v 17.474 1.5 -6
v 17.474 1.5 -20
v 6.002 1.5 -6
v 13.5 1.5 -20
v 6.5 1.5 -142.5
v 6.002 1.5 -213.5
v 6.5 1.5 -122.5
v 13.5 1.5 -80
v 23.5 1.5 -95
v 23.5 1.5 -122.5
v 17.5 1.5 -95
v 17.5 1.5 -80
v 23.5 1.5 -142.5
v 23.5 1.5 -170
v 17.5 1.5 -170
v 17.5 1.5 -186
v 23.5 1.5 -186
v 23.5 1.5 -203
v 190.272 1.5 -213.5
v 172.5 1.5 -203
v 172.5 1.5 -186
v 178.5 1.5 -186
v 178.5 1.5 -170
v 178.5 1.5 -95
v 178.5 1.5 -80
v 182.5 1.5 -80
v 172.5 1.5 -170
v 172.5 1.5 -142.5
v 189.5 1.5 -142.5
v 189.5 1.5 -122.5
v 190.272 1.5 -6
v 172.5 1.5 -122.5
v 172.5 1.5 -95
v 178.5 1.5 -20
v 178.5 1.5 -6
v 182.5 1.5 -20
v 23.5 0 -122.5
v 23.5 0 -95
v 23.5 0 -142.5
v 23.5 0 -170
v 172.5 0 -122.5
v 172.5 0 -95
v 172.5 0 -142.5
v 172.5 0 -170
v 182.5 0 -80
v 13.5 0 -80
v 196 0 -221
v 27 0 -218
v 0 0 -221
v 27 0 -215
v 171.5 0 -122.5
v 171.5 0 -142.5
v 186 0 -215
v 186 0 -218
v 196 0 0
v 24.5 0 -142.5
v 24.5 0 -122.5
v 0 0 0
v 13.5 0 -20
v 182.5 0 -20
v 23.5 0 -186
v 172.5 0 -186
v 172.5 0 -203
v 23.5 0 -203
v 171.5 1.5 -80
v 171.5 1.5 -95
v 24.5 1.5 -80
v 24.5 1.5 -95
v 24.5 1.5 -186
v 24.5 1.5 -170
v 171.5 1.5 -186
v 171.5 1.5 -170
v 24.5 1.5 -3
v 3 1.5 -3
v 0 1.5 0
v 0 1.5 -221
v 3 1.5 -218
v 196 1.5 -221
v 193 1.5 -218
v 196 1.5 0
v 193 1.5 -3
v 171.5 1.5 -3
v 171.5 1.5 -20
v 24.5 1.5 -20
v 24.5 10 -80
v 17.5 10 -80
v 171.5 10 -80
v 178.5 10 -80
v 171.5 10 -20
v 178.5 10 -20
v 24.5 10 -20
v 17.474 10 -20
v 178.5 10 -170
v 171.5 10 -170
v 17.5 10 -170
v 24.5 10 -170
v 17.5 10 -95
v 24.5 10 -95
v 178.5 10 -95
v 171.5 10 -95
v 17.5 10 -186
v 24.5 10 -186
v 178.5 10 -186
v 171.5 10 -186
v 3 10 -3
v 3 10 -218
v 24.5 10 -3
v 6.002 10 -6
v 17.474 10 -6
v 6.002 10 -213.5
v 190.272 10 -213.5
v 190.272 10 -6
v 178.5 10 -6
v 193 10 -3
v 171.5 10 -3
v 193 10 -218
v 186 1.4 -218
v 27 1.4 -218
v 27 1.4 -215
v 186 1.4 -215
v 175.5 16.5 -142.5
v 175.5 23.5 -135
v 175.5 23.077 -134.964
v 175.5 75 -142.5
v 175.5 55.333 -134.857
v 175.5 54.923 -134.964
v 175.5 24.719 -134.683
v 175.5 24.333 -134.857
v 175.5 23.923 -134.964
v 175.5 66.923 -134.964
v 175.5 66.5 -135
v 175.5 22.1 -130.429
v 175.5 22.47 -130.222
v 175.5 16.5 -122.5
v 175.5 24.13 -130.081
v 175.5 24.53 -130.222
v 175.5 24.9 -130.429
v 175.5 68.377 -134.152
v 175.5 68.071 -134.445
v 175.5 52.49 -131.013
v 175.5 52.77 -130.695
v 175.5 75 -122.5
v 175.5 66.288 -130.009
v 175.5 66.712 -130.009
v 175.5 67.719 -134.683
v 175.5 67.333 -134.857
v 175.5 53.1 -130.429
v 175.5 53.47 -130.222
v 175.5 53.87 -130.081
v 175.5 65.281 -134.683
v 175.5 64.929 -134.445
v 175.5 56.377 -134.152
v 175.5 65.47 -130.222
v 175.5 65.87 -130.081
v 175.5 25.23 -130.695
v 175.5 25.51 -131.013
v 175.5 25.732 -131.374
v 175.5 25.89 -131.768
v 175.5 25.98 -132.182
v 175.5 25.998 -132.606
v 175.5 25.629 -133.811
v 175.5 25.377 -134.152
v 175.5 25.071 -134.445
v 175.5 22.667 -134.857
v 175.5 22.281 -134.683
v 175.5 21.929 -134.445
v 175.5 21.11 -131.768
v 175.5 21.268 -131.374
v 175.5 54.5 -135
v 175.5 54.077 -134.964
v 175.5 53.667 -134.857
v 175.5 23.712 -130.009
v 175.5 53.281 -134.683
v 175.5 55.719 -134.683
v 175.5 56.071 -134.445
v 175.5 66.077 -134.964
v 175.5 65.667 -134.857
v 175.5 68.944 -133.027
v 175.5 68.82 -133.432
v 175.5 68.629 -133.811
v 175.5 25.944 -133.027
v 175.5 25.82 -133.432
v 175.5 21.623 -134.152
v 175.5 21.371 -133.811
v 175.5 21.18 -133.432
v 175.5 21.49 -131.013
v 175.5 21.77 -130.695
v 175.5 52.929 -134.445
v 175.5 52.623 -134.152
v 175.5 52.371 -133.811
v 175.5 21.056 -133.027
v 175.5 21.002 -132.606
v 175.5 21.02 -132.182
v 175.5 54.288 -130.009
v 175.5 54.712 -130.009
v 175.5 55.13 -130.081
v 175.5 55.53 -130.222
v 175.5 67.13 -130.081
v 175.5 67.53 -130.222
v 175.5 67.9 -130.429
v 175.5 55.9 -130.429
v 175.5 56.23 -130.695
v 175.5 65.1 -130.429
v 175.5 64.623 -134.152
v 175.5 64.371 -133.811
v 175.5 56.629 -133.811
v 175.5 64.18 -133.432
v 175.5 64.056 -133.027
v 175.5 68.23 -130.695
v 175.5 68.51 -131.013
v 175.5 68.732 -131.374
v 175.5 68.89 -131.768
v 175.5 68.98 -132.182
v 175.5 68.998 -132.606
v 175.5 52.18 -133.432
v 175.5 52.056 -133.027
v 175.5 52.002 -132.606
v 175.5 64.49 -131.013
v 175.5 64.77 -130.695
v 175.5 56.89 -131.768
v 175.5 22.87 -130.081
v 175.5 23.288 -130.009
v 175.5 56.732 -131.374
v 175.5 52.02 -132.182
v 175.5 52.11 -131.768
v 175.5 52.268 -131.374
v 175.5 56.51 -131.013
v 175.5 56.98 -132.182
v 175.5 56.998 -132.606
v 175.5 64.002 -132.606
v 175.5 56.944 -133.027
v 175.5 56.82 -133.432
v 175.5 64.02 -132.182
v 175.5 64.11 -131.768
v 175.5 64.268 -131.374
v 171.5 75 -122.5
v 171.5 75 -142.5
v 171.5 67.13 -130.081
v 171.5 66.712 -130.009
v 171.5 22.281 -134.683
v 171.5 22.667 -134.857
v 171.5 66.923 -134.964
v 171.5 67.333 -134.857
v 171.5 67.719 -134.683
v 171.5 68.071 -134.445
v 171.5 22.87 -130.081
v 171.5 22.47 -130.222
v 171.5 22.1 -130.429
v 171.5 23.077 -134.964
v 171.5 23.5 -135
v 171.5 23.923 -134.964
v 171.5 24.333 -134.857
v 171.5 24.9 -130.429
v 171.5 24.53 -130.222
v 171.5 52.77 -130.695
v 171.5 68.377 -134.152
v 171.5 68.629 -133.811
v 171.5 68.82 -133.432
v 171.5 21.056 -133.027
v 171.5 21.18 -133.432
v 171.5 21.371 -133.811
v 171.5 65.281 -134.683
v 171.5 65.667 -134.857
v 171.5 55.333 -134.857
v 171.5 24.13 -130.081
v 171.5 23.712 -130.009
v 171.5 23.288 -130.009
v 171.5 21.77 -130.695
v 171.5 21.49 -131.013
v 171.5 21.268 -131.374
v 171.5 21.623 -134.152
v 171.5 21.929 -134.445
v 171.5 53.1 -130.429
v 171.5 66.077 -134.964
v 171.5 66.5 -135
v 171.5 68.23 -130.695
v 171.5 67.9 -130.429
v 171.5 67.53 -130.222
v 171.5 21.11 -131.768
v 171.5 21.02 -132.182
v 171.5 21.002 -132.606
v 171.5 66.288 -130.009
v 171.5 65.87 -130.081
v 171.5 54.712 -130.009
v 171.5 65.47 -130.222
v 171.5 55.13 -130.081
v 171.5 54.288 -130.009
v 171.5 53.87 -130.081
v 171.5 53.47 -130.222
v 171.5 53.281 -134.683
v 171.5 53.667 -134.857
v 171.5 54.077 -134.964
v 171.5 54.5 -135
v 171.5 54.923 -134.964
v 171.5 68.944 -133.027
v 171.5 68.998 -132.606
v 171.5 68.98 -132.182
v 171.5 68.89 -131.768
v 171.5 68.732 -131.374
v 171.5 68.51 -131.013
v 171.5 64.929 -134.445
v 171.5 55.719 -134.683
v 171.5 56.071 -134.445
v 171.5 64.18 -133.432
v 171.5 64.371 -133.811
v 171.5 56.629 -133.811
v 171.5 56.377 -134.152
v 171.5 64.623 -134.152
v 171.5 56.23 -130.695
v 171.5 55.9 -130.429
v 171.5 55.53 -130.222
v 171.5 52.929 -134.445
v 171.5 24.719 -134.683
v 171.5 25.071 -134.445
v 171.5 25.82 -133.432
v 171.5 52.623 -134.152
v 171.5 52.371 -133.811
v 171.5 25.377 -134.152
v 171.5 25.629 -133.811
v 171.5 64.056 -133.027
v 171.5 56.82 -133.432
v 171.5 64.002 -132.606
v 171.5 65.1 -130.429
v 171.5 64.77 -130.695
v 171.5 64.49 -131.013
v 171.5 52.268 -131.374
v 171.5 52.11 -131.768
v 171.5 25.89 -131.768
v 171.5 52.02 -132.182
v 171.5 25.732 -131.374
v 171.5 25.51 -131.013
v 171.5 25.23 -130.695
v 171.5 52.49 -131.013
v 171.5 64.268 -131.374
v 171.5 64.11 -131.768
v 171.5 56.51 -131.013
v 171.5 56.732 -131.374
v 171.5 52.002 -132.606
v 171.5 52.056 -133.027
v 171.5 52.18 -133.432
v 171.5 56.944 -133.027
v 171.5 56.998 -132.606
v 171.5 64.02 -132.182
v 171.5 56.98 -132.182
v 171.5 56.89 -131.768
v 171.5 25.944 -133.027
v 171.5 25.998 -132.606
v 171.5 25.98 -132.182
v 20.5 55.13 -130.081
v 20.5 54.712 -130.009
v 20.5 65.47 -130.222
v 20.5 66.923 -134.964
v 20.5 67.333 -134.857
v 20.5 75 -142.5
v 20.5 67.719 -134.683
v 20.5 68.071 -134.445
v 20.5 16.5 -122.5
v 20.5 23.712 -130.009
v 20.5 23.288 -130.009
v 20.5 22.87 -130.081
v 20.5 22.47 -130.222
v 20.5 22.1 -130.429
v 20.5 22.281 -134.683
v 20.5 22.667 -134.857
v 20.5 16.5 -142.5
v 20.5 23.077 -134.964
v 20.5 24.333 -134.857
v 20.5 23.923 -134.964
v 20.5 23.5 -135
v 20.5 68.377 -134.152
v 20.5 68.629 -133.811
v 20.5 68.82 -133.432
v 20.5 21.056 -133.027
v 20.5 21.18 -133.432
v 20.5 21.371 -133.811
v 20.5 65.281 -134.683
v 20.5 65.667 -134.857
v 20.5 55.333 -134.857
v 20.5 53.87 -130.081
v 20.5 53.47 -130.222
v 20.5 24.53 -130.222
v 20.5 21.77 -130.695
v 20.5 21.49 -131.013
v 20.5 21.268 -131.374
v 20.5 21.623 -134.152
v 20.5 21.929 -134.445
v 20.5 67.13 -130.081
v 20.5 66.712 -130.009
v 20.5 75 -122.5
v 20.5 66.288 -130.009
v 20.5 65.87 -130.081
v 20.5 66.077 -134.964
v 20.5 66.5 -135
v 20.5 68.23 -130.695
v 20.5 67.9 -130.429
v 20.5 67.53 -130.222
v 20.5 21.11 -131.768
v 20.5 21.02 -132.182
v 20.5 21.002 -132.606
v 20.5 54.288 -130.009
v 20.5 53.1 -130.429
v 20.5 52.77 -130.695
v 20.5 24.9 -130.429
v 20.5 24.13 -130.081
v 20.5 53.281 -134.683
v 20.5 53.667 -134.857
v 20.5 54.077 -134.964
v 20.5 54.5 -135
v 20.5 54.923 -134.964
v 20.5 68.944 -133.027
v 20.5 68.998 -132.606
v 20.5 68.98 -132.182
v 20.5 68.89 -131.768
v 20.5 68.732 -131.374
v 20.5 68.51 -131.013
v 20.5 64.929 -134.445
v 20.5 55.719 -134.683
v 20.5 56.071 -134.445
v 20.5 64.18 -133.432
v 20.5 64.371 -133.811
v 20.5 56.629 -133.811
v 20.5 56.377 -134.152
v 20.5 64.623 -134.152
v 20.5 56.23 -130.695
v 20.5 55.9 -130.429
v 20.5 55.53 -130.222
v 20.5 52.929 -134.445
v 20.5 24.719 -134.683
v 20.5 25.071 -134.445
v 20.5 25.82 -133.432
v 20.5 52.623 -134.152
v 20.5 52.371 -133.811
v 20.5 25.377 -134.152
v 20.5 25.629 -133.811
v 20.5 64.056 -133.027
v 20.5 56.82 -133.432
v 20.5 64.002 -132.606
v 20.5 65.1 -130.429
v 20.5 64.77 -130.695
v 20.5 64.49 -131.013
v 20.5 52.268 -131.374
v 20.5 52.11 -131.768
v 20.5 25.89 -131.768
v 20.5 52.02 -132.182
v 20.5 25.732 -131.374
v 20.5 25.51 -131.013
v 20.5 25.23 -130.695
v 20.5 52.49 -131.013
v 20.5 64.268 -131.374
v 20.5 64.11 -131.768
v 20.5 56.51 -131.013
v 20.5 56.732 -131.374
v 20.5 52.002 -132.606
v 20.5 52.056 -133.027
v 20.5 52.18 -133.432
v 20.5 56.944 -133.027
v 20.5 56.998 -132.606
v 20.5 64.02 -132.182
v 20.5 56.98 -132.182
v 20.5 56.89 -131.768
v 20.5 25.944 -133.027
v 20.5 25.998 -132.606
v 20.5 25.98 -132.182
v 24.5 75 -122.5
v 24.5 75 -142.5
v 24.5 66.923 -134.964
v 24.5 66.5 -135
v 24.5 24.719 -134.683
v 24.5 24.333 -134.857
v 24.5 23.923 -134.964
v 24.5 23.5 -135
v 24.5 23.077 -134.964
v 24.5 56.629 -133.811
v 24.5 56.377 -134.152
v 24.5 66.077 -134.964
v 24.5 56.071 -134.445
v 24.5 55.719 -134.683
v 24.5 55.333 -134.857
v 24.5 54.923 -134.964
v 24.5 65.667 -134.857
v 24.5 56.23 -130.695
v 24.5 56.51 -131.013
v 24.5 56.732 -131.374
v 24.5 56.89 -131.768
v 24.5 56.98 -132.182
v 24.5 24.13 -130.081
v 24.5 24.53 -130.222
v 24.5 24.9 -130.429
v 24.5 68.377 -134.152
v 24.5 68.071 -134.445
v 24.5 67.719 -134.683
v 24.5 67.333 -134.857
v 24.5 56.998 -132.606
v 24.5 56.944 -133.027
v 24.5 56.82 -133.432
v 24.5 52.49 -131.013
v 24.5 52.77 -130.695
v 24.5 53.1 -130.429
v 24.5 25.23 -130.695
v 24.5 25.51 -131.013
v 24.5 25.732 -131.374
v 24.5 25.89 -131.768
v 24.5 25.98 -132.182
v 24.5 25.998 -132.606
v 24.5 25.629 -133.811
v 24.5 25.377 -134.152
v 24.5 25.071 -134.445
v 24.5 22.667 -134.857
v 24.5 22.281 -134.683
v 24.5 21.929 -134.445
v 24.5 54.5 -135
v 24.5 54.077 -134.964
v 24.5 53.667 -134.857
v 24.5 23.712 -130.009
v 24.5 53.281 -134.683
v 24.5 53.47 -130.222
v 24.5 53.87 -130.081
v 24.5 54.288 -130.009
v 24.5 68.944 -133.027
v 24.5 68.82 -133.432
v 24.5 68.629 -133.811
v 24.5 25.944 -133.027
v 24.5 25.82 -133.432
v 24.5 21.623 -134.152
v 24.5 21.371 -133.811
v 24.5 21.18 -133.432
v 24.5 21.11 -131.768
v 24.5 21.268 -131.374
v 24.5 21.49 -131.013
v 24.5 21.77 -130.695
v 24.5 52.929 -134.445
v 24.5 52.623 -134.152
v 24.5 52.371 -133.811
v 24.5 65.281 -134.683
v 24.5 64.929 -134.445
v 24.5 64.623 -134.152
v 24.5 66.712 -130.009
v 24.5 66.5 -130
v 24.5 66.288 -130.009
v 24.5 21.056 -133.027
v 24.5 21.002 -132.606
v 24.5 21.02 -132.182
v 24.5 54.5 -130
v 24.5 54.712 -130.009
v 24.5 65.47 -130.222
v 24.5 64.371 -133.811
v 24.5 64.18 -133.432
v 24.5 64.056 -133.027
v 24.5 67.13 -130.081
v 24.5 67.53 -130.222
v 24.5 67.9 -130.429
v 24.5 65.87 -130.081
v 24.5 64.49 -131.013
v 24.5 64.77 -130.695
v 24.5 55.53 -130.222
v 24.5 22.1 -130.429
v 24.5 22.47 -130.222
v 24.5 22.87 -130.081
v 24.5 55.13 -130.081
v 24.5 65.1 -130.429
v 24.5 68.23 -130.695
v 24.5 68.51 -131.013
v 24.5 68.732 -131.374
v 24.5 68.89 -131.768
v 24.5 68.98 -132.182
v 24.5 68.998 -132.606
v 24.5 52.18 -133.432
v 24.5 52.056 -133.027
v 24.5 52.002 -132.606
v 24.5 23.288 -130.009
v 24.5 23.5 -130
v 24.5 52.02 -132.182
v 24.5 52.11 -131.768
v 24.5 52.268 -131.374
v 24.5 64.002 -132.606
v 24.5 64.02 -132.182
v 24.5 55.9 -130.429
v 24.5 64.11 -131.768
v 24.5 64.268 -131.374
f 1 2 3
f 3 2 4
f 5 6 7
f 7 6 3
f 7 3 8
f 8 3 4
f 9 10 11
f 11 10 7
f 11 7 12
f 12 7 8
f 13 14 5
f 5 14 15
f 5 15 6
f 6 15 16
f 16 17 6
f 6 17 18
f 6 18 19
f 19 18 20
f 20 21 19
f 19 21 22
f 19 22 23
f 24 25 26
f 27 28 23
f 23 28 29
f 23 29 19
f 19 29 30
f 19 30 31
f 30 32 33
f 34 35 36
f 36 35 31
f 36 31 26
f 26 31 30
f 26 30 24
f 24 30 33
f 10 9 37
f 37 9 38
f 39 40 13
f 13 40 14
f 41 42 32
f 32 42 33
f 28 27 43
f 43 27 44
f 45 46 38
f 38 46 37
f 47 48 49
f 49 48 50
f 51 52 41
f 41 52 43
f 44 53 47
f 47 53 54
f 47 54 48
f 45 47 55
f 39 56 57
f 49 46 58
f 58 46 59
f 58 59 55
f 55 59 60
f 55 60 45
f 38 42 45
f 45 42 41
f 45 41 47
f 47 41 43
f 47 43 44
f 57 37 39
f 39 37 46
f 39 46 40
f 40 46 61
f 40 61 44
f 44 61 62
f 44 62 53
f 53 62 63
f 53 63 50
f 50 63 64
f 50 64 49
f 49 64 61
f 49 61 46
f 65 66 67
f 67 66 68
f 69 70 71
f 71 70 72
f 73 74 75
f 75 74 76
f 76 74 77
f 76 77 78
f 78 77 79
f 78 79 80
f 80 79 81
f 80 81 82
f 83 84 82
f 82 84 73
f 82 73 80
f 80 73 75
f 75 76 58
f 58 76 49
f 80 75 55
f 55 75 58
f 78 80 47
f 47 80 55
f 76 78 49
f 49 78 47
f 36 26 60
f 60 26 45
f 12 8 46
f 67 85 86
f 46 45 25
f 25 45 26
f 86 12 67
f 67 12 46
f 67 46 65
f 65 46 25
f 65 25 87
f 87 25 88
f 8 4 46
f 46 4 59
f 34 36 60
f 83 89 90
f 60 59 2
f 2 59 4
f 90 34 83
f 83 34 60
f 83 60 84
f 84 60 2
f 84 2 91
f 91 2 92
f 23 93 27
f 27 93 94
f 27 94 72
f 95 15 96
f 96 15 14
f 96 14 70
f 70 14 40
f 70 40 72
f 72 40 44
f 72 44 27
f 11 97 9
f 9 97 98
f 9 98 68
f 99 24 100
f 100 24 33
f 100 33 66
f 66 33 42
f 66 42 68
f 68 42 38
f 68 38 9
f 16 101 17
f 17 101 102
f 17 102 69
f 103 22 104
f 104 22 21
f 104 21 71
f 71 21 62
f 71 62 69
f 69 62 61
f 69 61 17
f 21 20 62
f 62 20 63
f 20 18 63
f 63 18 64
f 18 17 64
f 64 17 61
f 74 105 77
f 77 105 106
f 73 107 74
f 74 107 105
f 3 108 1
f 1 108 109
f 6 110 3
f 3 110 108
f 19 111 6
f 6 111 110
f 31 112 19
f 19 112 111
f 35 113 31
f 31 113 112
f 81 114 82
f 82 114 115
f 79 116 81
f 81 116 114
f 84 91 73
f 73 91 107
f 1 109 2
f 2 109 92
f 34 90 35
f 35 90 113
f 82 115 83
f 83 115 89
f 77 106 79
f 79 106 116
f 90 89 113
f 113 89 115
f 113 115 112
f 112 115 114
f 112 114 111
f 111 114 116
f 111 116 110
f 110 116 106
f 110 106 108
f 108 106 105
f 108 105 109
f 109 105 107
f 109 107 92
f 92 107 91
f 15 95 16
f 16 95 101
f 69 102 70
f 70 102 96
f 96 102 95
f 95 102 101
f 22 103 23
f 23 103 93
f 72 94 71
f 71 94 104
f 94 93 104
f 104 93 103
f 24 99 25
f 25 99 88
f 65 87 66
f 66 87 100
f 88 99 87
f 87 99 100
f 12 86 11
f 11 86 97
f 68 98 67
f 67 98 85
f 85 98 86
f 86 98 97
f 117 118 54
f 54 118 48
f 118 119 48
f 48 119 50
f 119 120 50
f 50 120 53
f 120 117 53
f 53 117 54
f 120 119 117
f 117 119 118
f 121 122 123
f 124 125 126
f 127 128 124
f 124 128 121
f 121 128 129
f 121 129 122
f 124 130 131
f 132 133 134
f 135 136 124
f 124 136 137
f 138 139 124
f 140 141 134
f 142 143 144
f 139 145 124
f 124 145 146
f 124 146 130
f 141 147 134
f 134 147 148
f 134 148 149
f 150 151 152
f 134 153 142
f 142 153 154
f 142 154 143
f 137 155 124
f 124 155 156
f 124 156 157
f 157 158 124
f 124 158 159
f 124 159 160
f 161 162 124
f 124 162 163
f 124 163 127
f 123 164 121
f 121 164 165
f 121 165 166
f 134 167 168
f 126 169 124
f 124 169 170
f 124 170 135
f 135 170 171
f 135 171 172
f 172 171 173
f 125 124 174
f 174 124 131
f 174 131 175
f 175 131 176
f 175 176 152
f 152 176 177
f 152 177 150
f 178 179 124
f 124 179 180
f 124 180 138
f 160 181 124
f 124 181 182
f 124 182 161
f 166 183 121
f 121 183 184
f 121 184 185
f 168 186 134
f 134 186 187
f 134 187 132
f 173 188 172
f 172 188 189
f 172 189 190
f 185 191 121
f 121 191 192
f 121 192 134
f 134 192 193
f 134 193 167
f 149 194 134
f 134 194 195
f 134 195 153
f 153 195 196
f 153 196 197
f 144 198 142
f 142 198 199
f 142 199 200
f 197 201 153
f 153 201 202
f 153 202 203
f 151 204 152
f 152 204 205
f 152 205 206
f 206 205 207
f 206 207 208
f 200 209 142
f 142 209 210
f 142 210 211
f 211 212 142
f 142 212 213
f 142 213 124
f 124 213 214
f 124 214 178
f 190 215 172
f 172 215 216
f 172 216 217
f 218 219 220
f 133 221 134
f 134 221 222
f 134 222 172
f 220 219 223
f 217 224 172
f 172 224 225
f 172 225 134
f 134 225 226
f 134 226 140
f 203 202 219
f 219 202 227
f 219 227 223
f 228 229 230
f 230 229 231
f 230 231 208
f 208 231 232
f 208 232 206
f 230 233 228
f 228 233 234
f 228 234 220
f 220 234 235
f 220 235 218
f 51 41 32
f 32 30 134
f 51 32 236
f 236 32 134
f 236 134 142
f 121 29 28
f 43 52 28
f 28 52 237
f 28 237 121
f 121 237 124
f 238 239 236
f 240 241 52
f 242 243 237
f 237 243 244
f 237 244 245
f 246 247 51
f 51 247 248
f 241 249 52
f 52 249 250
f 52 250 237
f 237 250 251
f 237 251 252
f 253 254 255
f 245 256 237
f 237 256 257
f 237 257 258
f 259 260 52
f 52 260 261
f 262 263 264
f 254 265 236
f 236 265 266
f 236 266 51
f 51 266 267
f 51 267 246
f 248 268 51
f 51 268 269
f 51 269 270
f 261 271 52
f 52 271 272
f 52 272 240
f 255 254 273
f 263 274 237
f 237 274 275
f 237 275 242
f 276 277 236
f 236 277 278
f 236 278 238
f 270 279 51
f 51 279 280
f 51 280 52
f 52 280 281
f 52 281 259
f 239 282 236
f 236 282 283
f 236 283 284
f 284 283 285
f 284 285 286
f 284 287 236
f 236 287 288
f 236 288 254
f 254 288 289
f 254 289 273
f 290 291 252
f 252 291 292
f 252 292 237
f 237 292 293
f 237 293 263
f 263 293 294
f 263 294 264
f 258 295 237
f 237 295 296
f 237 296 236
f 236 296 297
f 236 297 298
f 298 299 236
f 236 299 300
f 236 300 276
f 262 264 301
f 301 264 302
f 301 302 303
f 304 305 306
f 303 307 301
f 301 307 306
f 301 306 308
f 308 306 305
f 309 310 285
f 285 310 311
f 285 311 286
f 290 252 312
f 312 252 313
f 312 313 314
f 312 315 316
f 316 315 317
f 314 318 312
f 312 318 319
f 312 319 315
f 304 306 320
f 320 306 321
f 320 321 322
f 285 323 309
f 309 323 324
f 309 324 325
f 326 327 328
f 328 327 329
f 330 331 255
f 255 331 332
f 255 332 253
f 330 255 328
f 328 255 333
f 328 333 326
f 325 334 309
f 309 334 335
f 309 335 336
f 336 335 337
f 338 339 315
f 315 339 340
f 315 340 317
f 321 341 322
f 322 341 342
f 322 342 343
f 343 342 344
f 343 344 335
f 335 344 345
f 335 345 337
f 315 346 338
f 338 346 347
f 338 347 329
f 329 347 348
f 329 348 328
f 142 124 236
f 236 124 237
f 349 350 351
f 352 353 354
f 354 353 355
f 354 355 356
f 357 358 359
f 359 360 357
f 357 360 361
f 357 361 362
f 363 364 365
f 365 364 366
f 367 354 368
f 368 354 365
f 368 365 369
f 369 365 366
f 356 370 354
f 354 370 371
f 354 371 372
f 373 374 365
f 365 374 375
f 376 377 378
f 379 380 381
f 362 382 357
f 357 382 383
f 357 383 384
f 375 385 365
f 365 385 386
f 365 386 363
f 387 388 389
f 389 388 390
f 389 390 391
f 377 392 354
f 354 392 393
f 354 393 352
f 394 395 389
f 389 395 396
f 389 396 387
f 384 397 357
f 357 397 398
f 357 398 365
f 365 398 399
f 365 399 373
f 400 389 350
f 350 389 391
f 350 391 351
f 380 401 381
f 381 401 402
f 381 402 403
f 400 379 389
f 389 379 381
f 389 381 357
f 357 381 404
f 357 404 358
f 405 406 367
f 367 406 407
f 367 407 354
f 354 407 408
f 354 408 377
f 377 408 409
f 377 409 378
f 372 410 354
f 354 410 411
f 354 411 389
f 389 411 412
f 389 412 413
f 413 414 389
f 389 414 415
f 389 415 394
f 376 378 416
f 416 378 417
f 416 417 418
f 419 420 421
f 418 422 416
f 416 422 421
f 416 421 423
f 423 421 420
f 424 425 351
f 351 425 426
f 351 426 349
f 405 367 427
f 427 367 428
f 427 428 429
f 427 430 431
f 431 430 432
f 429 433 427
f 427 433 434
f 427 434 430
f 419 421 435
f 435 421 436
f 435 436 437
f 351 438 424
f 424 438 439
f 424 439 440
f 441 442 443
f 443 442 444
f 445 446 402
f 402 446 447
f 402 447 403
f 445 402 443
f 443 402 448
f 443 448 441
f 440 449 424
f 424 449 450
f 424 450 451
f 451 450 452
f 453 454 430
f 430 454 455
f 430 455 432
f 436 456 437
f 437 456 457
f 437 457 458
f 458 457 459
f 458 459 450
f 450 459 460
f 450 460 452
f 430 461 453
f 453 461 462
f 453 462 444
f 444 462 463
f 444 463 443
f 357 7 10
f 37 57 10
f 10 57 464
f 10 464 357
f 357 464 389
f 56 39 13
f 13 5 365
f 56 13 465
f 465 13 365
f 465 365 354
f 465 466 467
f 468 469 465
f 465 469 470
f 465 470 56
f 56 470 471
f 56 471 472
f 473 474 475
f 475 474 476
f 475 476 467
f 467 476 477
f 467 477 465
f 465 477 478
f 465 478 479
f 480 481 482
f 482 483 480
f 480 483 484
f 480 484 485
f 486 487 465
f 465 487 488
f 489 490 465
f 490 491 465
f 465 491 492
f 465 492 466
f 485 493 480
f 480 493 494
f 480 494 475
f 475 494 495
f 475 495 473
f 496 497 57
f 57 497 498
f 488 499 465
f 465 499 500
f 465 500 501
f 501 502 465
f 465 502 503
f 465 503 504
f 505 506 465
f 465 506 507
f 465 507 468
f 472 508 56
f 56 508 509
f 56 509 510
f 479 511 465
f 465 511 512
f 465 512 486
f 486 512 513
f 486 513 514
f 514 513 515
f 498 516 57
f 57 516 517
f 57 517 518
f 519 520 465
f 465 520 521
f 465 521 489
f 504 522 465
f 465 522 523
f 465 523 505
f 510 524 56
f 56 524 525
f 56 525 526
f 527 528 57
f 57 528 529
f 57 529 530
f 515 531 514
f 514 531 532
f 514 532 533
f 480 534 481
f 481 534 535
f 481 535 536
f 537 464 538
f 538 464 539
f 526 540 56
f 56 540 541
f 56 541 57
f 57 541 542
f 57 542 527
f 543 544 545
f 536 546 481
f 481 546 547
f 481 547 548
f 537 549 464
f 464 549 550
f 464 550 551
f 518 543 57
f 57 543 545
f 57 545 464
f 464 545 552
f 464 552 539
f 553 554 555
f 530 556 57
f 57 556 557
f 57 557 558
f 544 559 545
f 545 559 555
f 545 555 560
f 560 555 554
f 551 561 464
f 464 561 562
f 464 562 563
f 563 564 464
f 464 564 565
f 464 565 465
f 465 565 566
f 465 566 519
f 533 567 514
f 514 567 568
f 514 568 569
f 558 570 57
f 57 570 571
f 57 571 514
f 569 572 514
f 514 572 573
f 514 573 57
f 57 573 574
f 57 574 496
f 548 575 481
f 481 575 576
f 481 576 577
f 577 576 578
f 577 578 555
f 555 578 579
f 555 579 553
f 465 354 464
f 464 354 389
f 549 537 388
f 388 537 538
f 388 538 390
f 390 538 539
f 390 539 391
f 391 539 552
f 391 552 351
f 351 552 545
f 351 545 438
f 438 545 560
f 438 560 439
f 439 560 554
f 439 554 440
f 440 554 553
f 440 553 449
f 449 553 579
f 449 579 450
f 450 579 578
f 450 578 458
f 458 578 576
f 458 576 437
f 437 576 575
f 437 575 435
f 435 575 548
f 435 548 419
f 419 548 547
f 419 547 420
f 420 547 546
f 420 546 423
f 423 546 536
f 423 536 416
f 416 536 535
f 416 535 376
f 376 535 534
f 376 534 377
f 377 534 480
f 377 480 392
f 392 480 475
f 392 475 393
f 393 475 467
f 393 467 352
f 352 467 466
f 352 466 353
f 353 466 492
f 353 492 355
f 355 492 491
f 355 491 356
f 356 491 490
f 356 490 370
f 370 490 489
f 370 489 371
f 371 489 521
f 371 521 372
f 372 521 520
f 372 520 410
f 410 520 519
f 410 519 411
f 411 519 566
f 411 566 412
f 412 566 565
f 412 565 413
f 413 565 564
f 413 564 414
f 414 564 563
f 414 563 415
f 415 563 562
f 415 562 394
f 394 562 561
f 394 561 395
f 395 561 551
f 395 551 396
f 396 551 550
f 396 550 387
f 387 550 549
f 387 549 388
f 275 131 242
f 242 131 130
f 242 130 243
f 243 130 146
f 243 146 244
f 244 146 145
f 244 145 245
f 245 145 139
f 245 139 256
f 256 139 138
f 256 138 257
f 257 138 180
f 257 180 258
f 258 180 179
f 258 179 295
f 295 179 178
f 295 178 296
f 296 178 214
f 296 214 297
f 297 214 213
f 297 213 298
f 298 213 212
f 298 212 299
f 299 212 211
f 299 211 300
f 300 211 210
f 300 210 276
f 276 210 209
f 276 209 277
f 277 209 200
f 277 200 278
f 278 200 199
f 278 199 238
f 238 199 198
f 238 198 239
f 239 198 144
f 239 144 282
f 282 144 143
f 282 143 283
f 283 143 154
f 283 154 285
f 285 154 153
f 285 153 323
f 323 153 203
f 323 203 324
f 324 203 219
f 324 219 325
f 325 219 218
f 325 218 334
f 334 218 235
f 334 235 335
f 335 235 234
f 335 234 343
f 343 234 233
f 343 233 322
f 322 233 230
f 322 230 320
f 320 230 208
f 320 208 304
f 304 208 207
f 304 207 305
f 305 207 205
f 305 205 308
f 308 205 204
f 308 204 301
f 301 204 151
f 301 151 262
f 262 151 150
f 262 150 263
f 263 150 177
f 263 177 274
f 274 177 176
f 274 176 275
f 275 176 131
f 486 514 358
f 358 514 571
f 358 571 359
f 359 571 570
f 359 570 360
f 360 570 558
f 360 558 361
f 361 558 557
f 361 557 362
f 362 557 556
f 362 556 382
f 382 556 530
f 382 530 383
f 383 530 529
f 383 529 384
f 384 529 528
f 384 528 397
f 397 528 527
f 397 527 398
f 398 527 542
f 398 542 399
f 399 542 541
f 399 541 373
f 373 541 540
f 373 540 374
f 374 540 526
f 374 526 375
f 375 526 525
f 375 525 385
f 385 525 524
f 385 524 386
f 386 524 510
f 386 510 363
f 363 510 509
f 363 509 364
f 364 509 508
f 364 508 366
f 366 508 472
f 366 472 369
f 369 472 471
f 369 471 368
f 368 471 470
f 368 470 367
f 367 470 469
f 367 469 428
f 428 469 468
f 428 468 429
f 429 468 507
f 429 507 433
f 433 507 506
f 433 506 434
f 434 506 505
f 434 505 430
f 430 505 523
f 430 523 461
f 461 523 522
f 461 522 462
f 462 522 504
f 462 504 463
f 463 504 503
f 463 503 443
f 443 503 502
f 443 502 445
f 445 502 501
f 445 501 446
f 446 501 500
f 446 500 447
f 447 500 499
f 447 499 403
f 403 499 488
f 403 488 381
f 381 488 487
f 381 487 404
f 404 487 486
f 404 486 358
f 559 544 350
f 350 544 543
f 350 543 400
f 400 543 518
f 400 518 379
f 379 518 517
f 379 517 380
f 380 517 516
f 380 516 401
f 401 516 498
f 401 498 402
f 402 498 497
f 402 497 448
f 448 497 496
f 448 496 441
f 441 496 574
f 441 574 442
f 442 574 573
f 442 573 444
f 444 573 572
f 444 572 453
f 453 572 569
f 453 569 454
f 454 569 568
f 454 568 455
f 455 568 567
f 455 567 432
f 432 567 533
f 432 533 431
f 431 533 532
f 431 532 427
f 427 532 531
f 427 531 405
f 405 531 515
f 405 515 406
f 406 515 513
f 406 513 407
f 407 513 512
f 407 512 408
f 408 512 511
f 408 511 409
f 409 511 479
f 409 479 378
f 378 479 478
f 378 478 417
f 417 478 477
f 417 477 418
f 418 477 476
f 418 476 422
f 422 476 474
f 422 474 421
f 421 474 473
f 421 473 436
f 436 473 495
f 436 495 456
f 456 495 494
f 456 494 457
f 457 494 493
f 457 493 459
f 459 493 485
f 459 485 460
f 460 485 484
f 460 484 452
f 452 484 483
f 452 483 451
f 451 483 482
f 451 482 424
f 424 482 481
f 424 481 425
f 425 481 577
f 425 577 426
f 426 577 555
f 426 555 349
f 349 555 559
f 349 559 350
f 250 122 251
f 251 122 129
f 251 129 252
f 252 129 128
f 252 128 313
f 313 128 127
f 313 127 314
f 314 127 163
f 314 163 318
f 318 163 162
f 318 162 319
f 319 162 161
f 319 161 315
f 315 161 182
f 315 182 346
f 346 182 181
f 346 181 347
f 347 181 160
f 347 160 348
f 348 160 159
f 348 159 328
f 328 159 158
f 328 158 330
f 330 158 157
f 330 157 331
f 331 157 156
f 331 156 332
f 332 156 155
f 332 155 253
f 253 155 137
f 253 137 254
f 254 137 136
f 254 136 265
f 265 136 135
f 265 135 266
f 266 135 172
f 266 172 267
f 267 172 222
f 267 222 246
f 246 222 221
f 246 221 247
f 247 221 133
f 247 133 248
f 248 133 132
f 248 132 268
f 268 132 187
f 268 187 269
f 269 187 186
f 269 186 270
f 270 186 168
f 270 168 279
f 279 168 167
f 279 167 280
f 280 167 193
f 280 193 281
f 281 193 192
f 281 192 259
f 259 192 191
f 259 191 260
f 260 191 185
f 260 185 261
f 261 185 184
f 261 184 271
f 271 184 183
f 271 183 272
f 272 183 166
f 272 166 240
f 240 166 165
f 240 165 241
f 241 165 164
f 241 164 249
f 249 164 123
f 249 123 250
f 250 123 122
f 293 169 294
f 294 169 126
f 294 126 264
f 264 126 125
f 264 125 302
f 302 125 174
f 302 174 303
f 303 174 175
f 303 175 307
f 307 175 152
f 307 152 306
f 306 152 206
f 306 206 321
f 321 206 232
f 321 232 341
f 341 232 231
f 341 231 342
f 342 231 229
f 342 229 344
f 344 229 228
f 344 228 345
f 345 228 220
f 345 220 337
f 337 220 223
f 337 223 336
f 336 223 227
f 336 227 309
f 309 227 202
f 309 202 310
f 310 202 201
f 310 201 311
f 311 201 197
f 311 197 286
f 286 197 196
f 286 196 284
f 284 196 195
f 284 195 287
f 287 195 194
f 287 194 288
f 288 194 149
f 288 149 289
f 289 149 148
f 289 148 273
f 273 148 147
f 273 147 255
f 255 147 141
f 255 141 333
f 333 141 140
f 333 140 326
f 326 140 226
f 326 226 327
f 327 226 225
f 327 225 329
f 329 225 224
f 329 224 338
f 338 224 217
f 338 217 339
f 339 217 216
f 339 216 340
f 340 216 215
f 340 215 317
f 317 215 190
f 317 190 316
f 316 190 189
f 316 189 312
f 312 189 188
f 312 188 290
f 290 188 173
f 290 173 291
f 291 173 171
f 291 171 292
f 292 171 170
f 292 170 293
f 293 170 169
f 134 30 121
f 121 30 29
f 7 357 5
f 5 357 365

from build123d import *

# Parameters (mm, degrees)
SKETCH_1_W          = 196
SKETCH_1_H          = 221
SKETCH_1_W_2        = 169
SKETCH_1_H_2        = 60
SKETCH_1_W_3        = 149
SKETCH_1_H_3        = 75
SKETCH_1_H_4        = 17
SKETCH_1_W_4        = 159
SKETCH_1_H_5        = 3.5
EXTRUDE_1_DEPTH     = 1.5
SKETCH_5_W          = 7
SKETCH_5_H          = 16
SKETCH_5_H_2        = 15
EXTRUDE_9_DEPTH     = 10
CUT_EXTRUDE_2_DEPTH = 1.4
SKETCH_7_W          = 4
SKETCH_7_H          = 20
EXTRUDE_10_DEPTH    = 75
SKETCH_8_R          = 2.5
CUT_EXTRUDE_3_DEPTH = 185
EXTRUDE_11_DEPTH    = 20


with BuildPart() as part:
    # 草图1 → 凸台-拉伸1 (new body)
    with BuildSketch(Plane(origin=(0, 0, 0), x_dir=(1, 0, 0), z_dir=(0, 1, 0))):
        with Locations((98, 110.5)):
            Rectangle(SKETCH_1_W, SKETCH_1_H)
        with Locations((98, 50)):
            Rectangle(SKETCH_1_W_2, SKETCH_1_H_2, mode=Mode.SUBTRACT)
        with Locations((98, 132.5)):
            Rectangle(SKETCH_1_W_3, SKETCH_1_H_3, mode=Mode.SUBTRACT)
        with Locations((98, 194.5)):
            Rectangle(SKETCH_1_W_3, SKETCH_1_H_4, mode=Mode.SUBTRACT)
        with Locations((106.5, 216.25)):
            Rectangle(SKETCH_1_W_4, SKETCH_1_H_5, mode=Mode.SUBTRACT)
    extrude(amount=EXTRUDE_1_DEPTH)

    # 草图5 → 凸台-拉伸9 (add)
    with BuildSketch(Plane(origin=(0, 0, 0), x_dir=(1, 0, 0), z_dir=(0, 1, 0))):
        Polygon((3, 218), (193, 218), (193, 3), (171.5, 3), (171.5, 20), (178.5, 20), (178.5, 6), (190.27234206, 6), (190.27234206, 213.5), (6.00234206, 213.5), (6.00234206, 6), (17.473925125, 6), (17.473925125, 20), (24.5, 20), (24.5, 3), (3, 3), align=None)
        with Locations((21, 178)):
            Rectangle(SKETCH_5_W, SKETCH_5_H)
        with Locations((175, 178)):
            Rectangle(SKETCH_5_W, SKETCH_5_H)
        with Locations((175, 87.5)):
            Rectangle(SKETCH_5_W, SKETCH_5_H_2)
        with Locations((21, 87.5)):
            Rectangle(SKETCH_5_W, SKETCH_5_H_2)
    extrude(amount=EXTRUDE_9_DEPTH)

    # 草图6 → 切除-拉伸2 (cut)
    with BuildSketch(Plane(origin=(0, 0, 0), x_dir=(1, 0, 0), z_dir=(0, 1, 0))):
        Polygon((27, 217.586317154), (27, 218), (186, 218), (186, 215), (27, 215), align=None)
    extrude(amount=CUT_EXTRUDE_2_DEPTH, mode=Mode.SUBTRACT)

    # 草图7 → 凸台-拉伸10 (add)
    with BuildSketch(Plane(origin=(0, 0, 0), x_dir=(1, 0, 0), z_dir=(0, 1, 0))):
        Polygon((175.5, 132.5), (175.5, 142.5), (171.5, 142.5), (171.5, 122.5), (175.5, 122.5), align=None)
        with Locations((22.5, 132.5)):
            Rectangle(SKETCH_7_W, SKETCH_7_H)
    extrude(amount=EXTRUDE_10_DEPTH)

    # 草图8 → 切除-拉伸3 (cut)
    with BuildSketch(Plane(origin=(175.5, 0, 0), x_dir=(0, 0, -1), z_dir=(1, 0, 0))):
        with Locations((132.5, 66.5)):
            Circle(SKETCH_8_R)
        with Locations((132.5, 54.5)):
            Circle(SKETCH_8_R)
        with Locations((132.5, 23.5)):
            Circle(SKETCH_8_R)
    extrude(amount=-CUT_EXTRUDE_3_DEPTH, mode=Mode.SUBTRACT)

    # 草图10 → 凸台-拉伸11 (add)
    with BuildSketch(Plane(origin=(0, 0, -142.5), x_dir=(-1, 0, 0), z_dir=(0, 0, -1))):
        Polygon((-189.5, 1.5), (-175.5, 1.5), (-175.5, 16.5), align=None)
        Polygon((-20.5, 1.5), (-6.5, 1.5), (-20.5, 16.5), align=None)
    extrude(amount=-EXTRUDE_11_DEPTH)


solid = part.part
